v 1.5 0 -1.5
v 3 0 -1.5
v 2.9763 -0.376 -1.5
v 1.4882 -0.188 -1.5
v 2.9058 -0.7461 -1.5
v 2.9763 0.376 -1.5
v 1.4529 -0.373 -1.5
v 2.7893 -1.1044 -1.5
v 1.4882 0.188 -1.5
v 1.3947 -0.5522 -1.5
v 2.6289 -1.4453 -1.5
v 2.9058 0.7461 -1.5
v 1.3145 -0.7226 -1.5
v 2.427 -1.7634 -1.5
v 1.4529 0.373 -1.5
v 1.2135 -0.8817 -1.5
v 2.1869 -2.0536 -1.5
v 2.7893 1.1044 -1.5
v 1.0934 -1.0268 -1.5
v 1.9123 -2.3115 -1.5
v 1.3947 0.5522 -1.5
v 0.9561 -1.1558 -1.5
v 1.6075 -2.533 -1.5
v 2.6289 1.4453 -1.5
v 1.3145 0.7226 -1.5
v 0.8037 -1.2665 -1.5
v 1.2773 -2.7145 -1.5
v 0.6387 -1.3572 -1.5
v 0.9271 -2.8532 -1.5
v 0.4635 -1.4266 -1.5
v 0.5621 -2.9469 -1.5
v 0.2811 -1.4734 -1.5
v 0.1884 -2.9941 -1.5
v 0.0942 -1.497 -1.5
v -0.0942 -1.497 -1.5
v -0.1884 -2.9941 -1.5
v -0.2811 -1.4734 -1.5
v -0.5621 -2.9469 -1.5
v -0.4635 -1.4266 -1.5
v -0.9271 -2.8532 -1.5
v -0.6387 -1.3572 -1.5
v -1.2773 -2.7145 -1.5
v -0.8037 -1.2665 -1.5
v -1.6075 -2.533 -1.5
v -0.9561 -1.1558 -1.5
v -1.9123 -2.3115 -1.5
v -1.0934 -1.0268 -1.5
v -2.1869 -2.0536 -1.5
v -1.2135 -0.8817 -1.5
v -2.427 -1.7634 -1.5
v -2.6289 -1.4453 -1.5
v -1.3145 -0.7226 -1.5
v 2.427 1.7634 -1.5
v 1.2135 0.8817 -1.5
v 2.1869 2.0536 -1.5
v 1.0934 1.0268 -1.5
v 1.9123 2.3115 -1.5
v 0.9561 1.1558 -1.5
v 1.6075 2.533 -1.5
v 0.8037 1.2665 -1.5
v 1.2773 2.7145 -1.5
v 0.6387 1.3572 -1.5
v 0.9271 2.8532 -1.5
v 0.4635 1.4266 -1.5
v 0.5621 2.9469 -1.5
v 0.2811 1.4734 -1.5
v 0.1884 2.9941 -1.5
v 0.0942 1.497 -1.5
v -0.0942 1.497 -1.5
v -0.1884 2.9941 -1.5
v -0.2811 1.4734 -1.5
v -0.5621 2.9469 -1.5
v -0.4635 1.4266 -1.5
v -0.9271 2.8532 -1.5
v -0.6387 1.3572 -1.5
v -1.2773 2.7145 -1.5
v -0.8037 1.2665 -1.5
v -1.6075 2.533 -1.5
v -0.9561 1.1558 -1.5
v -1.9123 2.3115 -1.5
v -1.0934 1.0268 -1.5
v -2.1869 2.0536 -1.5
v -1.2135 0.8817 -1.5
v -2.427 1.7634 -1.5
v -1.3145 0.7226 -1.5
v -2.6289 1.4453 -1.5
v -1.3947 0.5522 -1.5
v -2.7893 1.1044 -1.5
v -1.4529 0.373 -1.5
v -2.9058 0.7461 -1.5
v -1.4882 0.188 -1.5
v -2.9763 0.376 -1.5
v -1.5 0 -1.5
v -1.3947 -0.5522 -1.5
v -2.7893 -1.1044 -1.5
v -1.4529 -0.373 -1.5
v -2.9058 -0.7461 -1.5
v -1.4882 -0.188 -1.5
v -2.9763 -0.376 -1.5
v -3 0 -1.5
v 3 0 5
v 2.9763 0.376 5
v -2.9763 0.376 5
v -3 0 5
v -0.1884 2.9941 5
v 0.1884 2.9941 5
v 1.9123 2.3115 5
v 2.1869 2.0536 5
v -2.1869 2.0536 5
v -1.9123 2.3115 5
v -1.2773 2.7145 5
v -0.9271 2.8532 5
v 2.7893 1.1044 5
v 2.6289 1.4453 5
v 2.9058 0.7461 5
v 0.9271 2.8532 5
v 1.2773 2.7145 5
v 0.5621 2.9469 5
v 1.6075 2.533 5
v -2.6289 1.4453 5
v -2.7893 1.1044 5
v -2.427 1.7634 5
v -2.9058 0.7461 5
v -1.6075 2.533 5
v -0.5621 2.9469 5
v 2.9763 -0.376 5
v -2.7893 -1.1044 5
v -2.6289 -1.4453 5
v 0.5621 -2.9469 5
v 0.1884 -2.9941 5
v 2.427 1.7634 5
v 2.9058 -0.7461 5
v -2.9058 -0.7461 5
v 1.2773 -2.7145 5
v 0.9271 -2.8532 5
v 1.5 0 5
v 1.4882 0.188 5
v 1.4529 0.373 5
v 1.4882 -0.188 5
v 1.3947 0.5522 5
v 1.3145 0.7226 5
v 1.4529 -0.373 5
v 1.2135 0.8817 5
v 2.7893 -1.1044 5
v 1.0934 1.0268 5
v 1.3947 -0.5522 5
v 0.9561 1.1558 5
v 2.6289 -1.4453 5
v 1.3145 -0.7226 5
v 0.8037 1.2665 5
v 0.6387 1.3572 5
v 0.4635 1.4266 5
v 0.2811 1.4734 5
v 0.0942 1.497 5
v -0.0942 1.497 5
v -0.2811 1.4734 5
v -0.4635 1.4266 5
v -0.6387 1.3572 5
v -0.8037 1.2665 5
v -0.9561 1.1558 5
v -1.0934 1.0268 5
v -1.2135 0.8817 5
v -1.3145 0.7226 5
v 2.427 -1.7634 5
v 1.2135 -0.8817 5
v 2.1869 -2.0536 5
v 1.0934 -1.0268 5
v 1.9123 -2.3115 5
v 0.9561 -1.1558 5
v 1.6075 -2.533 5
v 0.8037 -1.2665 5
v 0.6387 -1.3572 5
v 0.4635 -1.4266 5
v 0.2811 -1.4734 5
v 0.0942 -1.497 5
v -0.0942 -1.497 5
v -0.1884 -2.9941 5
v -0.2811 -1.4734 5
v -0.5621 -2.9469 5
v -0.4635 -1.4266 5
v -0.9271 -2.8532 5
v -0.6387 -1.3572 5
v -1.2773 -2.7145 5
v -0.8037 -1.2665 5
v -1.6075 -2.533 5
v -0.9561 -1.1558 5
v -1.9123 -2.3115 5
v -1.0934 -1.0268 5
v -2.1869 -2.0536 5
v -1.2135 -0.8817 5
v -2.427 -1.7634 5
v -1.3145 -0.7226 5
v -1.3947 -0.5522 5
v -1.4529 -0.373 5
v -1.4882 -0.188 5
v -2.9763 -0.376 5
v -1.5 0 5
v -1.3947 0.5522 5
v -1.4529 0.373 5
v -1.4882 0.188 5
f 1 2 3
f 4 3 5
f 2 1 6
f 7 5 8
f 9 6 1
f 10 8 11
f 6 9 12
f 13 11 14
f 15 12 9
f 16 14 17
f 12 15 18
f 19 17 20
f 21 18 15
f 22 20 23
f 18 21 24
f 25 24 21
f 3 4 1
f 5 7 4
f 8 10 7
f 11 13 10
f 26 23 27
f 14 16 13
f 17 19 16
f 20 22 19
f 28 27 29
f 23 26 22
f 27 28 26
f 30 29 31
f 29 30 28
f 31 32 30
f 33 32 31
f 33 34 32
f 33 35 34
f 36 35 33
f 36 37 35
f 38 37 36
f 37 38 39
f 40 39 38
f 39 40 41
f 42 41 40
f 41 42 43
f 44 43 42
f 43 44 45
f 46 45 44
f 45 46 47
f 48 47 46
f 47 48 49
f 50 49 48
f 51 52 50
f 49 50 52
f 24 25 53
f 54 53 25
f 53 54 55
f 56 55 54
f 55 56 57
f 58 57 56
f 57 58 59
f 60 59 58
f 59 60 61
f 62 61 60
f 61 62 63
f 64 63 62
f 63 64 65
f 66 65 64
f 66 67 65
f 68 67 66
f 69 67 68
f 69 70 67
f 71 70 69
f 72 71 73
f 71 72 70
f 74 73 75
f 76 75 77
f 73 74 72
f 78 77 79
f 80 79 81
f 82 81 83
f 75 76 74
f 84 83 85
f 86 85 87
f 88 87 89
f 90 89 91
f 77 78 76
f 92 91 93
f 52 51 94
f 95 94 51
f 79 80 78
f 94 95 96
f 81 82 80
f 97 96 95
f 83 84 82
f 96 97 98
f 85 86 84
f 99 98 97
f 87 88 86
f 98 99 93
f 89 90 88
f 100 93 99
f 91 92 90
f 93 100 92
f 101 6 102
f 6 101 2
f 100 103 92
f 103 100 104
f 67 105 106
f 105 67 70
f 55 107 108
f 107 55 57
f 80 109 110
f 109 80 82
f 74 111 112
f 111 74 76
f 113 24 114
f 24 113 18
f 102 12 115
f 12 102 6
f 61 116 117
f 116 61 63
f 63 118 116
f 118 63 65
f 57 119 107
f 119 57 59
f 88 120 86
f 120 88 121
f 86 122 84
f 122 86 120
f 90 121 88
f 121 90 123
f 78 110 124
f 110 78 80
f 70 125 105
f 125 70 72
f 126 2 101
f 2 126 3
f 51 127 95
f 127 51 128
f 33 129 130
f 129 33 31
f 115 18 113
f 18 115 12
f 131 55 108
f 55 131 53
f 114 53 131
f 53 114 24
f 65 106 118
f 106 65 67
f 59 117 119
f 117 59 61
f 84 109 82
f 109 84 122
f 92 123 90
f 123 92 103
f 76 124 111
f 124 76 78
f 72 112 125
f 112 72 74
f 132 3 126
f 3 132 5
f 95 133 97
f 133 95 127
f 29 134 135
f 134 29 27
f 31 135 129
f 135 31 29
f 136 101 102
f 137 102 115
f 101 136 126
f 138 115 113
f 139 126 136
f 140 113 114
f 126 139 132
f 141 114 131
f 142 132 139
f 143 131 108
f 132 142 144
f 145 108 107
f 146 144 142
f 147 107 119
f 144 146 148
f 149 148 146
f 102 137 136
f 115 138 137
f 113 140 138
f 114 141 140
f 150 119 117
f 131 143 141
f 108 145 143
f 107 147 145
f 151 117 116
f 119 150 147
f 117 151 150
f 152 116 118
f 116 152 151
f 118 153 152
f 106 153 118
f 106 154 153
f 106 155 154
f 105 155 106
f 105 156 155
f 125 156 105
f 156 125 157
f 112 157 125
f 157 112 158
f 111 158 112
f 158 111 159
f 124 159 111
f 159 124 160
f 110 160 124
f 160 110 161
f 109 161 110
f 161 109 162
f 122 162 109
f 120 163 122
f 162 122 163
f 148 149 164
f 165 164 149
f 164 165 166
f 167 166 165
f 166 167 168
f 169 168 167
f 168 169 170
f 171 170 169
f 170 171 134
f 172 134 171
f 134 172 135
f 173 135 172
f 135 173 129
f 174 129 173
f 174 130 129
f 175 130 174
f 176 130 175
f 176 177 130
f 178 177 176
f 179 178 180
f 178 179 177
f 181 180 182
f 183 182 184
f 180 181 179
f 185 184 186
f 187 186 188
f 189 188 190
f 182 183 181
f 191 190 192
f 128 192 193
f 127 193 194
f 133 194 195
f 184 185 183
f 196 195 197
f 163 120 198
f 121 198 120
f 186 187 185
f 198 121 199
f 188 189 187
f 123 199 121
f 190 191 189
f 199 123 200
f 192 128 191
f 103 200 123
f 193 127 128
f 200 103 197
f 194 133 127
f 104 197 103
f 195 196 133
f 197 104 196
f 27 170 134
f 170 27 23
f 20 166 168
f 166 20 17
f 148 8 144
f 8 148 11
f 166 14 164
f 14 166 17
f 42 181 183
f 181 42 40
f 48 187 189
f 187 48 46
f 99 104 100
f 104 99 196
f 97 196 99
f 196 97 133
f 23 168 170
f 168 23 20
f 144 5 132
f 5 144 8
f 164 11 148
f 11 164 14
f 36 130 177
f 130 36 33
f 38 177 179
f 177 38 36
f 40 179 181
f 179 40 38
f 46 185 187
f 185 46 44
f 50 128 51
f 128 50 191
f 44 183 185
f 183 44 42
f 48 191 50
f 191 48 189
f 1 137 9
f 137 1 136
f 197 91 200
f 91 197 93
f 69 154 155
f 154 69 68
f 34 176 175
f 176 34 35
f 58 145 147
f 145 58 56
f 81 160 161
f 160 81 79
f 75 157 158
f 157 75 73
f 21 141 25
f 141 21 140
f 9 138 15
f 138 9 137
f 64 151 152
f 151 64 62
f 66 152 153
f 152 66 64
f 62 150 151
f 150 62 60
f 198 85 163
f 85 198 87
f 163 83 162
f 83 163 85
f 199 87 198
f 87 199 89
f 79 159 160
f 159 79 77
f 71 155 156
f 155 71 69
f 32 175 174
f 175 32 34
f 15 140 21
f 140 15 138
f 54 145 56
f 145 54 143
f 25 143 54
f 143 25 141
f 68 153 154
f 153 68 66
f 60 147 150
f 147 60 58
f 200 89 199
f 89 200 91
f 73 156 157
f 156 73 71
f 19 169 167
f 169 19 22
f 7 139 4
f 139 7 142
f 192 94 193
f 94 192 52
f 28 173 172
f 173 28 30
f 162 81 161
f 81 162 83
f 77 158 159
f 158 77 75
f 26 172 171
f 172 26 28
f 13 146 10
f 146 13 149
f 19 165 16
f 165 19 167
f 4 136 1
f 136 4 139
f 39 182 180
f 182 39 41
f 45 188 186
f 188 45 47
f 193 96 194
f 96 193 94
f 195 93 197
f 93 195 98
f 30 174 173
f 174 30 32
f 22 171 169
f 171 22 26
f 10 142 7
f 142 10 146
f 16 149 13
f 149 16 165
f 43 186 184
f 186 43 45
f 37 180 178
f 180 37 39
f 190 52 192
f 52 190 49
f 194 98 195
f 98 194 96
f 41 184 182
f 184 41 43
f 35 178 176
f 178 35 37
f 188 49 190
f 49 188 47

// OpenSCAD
$fn = 50;


difference() {
	union() {
		translate(v = [0, 0, -1.5000000000]) {
			cylinder(h = 3, r = 1.0000000000);
		}
		translate(v = [0, 0, -1.5000000000]) {
			cylinder(h = 6.5000000000, r = 3.0000000000);
		}
	}
	union() {
		translate(v = [0, 0, -100.0000000000]) {
			cylinder(h = 200, r = 1.5000000000);
		}
	}
}
